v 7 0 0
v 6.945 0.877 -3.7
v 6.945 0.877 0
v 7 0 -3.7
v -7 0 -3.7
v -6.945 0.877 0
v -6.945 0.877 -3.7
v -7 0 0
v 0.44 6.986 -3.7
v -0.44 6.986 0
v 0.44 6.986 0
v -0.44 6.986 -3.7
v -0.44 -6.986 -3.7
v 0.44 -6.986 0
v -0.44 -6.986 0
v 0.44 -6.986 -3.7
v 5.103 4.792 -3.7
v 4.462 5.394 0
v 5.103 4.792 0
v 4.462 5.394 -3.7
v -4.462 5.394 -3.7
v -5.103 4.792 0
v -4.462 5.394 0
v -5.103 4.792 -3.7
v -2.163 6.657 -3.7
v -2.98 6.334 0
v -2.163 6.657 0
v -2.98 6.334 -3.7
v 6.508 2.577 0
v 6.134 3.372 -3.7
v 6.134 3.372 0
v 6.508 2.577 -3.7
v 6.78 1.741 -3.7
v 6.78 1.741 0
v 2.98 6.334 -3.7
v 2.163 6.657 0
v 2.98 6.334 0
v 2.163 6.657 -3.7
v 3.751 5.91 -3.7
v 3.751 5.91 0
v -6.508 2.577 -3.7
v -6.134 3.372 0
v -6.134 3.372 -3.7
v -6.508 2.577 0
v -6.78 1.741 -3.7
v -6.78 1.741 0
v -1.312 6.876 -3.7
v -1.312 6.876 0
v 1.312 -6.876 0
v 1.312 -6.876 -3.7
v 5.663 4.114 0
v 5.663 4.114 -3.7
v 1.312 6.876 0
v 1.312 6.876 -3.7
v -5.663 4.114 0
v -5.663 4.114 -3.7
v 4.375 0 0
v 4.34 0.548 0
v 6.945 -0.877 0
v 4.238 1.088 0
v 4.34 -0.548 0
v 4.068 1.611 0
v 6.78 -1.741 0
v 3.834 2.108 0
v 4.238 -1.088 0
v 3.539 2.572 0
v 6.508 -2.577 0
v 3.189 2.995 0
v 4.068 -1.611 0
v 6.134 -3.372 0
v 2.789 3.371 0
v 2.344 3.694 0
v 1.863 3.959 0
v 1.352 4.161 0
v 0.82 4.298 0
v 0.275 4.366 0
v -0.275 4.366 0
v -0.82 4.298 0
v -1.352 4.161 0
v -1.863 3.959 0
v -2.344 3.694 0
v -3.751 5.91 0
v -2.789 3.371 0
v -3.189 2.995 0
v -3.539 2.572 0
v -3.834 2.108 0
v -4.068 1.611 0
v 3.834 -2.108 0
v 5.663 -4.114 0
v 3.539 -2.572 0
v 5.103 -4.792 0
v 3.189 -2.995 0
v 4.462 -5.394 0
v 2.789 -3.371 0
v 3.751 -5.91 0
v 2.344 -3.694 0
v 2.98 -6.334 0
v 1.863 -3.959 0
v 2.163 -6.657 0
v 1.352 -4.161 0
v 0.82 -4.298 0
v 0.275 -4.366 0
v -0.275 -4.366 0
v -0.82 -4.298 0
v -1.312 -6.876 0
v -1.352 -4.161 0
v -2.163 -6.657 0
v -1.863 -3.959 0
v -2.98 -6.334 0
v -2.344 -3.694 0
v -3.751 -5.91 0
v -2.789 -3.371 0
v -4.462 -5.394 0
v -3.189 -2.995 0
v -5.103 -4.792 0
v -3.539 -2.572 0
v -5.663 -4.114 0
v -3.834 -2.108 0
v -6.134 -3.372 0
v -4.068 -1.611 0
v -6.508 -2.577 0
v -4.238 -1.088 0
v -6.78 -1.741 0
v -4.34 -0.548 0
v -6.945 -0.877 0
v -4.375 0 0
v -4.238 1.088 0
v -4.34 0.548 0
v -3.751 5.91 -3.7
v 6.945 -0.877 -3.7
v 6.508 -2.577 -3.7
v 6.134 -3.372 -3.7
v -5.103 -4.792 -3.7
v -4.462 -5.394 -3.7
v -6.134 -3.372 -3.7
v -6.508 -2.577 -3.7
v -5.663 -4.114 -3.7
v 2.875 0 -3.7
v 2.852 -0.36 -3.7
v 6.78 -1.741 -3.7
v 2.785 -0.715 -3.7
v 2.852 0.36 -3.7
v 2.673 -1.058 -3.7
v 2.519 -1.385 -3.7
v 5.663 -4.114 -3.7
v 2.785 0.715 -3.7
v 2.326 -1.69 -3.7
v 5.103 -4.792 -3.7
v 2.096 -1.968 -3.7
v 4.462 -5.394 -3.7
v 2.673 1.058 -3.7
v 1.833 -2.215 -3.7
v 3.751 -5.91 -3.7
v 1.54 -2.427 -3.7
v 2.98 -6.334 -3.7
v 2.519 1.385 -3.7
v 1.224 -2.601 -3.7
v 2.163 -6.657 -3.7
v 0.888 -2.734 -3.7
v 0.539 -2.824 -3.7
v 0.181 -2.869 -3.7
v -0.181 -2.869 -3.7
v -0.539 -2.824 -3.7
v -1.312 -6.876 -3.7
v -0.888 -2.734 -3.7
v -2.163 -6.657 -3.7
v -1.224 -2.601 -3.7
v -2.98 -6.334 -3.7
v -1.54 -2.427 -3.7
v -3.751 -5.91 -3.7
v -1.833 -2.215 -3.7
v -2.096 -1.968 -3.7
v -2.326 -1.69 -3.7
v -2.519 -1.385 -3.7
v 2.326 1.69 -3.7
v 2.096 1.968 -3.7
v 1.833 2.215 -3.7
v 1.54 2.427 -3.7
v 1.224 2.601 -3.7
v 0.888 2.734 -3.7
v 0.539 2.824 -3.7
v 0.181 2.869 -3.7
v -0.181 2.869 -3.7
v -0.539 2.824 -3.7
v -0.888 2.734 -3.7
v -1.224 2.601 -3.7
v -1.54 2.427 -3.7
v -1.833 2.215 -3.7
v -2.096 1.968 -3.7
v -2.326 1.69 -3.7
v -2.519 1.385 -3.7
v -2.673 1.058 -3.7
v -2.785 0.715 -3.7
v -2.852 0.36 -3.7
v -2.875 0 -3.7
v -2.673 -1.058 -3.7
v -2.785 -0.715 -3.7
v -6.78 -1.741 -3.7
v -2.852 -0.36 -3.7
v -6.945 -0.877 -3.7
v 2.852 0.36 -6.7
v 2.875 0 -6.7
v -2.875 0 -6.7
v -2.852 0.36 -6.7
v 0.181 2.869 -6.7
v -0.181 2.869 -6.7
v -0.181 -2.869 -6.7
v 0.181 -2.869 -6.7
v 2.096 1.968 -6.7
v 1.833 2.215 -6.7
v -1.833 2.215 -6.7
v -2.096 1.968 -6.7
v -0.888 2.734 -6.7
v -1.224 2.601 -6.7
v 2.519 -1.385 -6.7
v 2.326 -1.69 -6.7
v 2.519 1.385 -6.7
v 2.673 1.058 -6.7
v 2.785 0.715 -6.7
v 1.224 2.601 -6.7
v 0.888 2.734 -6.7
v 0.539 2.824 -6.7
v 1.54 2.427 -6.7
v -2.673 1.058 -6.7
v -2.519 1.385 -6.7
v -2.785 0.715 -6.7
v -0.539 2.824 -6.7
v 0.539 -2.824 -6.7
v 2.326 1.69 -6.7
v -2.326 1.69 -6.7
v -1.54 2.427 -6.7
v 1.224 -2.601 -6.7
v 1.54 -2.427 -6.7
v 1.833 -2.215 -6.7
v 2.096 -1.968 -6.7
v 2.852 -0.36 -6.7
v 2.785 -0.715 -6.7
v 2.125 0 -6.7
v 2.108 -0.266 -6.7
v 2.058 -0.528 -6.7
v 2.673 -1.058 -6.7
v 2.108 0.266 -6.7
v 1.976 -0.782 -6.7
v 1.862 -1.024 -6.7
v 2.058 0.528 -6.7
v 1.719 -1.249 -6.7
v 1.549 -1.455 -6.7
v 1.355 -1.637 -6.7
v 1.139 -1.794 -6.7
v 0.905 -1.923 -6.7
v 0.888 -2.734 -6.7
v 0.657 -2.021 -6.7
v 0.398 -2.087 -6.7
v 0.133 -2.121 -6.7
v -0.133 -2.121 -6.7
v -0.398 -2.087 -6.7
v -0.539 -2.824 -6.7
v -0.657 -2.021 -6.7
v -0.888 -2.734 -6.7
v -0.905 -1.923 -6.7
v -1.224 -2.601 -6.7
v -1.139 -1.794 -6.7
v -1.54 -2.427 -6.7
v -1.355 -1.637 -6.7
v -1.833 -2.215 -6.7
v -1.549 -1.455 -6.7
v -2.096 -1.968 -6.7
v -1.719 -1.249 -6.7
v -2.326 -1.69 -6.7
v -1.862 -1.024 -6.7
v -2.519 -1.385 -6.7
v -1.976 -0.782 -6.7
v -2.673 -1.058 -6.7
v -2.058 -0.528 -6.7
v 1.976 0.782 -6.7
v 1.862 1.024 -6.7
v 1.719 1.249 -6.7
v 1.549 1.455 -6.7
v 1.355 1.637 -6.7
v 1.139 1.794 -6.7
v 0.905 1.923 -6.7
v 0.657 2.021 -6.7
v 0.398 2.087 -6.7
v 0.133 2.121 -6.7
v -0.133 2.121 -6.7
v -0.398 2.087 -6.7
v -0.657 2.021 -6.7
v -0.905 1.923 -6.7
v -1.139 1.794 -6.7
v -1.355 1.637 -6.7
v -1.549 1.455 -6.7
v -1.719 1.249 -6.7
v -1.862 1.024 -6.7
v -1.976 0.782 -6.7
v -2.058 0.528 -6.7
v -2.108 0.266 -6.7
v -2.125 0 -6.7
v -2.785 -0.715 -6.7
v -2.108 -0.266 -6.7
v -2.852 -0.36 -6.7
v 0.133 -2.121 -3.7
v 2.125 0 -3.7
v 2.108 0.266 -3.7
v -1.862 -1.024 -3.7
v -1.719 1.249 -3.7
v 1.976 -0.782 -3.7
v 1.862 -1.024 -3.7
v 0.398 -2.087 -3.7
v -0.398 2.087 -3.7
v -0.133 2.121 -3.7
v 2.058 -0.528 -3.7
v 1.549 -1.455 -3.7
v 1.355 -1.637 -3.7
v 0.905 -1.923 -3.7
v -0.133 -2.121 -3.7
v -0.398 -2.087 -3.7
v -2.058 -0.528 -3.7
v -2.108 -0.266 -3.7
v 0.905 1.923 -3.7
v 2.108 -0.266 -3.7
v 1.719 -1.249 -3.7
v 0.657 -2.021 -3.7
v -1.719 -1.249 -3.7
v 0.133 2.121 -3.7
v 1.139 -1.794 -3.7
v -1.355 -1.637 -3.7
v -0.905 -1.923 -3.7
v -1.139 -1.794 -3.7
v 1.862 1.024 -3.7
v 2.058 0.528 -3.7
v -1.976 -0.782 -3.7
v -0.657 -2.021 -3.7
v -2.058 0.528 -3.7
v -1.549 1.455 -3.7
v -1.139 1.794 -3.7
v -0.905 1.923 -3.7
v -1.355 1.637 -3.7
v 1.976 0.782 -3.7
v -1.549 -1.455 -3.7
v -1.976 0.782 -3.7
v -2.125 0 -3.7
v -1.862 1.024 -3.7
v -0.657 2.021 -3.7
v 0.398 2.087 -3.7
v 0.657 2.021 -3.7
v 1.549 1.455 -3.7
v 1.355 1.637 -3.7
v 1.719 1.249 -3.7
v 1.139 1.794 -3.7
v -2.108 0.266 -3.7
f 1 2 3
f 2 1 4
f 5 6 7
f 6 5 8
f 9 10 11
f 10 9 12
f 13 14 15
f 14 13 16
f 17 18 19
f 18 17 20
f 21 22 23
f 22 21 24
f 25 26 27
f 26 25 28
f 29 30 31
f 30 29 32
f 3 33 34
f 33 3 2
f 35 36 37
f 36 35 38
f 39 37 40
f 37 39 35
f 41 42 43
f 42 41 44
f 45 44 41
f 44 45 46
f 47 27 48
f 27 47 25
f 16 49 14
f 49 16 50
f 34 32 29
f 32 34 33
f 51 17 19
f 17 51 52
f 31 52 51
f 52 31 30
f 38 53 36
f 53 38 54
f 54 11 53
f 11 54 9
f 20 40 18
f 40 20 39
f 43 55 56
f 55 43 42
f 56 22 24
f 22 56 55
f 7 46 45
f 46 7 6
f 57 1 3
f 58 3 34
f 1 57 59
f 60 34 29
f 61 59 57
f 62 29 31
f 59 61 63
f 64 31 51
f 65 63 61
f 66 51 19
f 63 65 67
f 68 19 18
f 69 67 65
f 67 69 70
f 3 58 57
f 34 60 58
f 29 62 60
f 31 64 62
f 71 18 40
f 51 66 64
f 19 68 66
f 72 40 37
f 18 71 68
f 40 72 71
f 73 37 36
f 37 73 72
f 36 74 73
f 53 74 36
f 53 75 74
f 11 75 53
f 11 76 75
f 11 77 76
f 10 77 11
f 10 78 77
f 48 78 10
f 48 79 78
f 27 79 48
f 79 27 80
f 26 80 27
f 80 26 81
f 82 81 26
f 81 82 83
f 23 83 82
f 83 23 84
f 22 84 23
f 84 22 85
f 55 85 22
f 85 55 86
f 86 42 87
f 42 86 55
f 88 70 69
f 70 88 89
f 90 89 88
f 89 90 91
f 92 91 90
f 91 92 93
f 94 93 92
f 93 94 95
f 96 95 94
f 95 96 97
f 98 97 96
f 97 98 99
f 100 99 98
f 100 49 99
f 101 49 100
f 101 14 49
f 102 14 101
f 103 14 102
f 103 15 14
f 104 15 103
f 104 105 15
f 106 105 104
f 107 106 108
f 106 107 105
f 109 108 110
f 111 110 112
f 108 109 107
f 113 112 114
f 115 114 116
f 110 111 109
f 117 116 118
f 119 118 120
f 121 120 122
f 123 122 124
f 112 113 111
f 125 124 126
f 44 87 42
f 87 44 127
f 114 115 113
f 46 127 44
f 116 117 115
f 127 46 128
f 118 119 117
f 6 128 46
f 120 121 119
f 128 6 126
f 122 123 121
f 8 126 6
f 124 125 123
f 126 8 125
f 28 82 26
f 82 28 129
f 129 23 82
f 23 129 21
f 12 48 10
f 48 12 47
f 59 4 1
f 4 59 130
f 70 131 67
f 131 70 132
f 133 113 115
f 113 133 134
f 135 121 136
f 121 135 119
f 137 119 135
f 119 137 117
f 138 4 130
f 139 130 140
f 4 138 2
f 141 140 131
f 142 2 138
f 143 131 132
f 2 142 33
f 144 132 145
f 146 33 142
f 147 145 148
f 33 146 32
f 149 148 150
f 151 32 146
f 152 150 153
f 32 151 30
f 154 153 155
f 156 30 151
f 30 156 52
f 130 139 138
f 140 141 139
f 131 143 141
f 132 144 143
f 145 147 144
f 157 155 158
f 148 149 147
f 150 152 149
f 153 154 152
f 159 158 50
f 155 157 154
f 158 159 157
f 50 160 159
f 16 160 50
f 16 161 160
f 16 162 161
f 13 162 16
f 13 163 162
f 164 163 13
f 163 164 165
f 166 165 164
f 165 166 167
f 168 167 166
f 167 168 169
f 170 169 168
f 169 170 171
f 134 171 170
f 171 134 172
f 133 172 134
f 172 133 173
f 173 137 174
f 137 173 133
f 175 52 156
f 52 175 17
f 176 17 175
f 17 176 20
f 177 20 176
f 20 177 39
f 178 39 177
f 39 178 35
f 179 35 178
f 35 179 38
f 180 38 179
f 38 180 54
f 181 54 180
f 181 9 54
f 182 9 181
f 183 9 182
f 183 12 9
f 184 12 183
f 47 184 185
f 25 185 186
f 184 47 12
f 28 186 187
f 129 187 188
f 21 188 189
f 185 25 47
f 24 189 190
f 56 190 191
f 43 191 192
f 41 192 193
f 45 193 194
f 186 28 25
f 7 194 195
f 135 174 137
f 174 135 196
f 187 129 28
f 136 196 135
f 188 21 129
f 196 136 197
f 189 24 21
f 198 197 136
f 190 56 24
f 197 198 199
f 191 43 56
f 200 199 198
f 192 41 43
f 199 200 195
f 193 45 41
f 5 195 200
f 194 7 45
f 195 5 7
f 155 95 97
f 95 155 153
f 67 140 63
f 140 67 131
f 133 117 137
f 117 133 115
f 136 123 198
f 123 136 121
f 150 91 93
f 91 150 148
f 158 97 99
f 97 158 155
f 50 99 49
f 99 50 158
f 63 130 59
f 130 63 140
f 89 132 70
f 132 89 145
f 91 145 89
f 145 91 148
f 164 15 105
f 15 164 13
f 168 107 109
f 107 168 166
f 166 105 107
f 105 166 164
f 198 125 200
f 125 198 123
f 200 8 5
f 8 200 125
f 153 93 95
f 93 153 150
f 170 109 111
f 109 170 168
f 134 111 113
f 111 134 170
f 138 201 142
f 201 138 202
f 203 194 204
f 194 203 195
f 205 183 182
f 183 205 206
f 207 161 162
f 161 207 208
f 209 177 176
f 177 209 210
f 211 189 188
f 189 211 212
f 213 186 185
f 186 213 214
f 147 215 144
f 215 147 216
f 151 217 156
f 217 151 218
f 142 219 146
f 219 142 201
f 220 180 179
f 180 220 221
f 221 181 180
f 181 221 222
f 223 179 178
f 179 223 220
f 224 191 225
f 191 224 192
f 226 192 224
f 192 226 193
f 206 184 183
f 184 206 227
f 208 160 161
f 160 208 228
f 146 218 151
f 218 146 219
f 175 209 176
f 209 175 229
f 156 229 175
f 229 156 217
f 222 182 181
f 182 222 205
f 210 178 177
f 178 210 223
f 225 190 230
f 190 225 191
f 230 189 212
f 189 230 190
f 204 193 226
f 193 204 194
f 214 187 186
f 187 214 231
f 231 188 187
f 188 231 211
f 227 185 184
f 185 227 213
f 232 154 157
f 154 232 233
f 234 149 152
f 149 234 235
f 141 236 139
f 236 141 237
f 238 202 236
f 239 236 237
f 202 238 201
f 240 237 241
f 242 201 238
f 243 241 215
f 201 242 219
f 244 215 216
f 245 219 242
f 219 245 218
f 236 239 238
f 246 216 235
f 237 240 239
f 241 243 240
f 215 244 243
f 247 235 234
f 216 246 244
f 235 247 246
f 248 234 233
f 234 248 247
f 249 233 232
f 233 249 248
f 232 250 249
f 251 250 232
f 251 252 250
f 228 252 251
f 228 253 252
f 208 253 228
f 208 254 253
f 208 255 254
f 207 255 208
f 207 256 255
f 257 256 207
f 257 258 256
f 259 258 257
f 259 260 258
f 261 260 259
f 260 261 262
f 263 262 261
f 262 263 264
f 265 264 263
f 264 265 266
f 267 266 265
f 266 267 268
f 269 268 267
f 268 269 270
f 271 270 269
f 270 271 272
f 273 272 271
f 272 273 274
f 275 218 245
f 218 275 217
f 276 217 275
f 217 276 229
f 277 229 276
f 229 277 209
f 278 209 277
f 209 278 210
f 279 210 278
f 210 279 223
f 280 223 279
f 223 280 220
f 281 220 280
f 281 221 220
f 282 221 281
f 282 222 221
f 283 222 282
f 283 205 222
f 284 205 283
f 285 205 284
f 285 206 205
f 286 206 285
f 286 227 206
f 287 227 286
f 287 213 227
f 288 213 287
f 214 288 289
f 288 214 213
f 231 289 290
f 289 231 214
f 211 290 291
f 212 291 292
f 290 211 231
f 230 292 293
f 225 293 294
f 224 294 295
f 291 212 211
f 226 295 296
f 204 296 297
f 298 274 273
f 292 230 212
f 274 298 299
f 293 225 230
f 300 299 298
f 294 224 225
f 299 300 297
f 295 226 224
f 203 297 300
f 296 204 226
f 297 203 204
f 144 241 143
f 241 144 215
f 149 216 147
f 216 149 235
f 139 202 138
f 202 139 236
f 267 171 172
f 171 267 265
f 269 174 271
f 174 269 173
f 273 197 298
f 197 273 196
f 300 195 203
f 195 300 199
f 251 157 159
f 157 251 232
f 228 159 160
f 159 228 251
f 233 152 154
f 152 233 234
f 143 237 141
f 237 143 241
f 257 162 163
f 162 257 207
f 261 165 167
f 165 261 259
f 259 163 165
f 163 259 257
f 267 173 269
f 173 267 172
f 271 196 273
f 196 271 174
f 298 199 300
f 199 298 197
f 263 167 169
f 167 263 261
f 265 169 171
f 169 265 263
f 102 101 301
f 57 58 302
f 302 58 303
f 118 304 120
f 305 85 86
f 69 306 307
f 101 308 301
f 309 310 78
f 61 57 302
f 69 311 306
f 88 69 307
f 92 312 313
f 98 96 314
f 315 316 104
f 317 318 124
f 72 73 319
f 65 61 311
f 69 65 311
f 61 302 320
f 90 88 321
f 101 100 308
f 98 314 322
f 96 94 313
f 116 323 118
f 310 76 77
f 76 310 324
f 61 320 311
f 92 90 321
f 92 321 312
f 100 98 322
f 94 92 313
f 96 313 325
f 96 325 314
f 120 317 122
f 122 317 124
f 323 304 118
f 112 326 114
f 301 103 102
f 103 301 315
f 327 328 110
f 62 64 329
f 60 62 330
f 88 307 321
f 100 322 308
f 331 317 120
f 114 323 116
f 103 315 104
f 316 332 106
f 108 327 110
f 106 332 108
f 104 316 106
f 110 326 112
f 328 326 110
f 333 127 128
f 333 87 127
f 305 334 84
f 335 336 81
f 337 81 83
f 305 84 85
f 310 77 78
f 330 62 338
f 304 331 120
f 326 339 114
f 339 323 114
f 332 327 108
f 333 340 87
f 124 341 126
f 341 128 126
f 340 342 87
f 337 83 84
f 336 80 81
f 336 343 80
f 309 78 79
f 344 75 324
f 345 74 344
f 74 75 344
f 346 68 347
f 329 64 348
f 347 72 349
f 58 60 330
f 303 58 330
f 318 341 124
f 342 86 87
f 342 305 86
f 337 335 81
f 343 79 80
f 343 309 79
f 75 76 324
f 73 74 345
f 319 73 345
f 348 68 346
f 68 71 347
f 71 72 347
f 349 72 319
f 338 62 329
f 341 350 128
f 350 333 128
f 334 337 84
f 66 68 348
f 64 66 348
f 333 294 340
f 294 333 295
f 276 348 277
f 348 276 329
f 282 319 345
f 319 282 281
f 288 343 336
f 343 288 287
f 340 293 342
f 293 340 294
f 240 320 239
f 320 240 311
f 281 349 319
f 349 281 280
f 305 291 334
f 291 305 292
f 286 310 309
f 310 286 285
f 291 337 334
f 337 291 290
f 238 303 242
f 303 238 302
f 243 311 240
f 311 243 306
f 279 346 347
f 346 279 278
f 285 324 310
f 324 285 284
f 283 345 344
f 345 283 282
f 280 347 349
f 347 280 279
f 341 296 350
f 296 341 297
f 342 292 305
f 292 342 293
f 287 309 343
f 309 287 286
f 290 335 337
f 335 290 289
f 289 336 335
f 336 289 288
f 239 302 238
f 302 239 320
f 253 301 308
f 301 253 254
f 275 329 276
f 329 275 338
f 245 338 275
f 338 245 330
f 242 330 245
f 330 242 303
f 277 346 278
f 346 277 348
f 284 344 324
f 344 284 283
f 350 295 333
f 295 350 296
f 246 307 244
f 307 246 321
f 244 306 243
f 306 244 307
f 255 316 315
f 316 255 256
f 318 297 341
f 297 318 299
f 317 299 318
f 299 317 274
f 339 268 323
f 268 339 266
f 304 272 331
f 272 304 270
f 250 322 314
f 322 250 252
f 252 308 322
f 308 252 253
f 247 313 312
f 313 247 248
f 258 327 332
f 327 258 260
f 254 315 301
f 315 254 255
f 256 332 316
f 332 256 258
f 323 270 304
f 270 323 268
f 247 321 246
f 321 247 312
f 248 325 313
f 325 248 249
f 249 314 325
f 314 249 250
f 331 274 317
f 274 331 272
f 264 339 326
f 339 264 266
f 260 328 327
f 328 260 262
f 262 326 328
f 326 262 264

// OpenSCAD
$fn = 50;


difference() {
	union() {
		translate(v = [0, 0, -3.7000000000]) {
			cylinder(h = 3.7000000000, r = 7.0000000000);
		}
		translate(v = [0, 0, -6.7000000000]) {
			cylinder(h = 6.7000000000, r = 2.8750000000);
		}
	}
	union() {
		translate(v = [0, 0, 0]) {
			rotate(a = [0, 0, 0]) {
				difference() {
					union() {
						translate(v = [0, 0, -6.7000000000]) {
							cylinder(h = 6.7000000000, r = 2.0000000000);
						}
						translate(v = [0, 0, -3.7000000000]) {
							cylinder(h = 3.7000000000, r1 = 2.1250000000, r2 = 4.3750000000);
						}
						translate(v = [0, 0, -6.7000000000]) {
							cylinder(h = 6.7000000000, r = 2.1250000000);
						}
						translate(v = [0, 0, -6.7000000000]) {
							cylinder(h = 6.7000000000, r = 2.0000000000);
						}
					}
					union();
				}
			}
		}
	}
}
